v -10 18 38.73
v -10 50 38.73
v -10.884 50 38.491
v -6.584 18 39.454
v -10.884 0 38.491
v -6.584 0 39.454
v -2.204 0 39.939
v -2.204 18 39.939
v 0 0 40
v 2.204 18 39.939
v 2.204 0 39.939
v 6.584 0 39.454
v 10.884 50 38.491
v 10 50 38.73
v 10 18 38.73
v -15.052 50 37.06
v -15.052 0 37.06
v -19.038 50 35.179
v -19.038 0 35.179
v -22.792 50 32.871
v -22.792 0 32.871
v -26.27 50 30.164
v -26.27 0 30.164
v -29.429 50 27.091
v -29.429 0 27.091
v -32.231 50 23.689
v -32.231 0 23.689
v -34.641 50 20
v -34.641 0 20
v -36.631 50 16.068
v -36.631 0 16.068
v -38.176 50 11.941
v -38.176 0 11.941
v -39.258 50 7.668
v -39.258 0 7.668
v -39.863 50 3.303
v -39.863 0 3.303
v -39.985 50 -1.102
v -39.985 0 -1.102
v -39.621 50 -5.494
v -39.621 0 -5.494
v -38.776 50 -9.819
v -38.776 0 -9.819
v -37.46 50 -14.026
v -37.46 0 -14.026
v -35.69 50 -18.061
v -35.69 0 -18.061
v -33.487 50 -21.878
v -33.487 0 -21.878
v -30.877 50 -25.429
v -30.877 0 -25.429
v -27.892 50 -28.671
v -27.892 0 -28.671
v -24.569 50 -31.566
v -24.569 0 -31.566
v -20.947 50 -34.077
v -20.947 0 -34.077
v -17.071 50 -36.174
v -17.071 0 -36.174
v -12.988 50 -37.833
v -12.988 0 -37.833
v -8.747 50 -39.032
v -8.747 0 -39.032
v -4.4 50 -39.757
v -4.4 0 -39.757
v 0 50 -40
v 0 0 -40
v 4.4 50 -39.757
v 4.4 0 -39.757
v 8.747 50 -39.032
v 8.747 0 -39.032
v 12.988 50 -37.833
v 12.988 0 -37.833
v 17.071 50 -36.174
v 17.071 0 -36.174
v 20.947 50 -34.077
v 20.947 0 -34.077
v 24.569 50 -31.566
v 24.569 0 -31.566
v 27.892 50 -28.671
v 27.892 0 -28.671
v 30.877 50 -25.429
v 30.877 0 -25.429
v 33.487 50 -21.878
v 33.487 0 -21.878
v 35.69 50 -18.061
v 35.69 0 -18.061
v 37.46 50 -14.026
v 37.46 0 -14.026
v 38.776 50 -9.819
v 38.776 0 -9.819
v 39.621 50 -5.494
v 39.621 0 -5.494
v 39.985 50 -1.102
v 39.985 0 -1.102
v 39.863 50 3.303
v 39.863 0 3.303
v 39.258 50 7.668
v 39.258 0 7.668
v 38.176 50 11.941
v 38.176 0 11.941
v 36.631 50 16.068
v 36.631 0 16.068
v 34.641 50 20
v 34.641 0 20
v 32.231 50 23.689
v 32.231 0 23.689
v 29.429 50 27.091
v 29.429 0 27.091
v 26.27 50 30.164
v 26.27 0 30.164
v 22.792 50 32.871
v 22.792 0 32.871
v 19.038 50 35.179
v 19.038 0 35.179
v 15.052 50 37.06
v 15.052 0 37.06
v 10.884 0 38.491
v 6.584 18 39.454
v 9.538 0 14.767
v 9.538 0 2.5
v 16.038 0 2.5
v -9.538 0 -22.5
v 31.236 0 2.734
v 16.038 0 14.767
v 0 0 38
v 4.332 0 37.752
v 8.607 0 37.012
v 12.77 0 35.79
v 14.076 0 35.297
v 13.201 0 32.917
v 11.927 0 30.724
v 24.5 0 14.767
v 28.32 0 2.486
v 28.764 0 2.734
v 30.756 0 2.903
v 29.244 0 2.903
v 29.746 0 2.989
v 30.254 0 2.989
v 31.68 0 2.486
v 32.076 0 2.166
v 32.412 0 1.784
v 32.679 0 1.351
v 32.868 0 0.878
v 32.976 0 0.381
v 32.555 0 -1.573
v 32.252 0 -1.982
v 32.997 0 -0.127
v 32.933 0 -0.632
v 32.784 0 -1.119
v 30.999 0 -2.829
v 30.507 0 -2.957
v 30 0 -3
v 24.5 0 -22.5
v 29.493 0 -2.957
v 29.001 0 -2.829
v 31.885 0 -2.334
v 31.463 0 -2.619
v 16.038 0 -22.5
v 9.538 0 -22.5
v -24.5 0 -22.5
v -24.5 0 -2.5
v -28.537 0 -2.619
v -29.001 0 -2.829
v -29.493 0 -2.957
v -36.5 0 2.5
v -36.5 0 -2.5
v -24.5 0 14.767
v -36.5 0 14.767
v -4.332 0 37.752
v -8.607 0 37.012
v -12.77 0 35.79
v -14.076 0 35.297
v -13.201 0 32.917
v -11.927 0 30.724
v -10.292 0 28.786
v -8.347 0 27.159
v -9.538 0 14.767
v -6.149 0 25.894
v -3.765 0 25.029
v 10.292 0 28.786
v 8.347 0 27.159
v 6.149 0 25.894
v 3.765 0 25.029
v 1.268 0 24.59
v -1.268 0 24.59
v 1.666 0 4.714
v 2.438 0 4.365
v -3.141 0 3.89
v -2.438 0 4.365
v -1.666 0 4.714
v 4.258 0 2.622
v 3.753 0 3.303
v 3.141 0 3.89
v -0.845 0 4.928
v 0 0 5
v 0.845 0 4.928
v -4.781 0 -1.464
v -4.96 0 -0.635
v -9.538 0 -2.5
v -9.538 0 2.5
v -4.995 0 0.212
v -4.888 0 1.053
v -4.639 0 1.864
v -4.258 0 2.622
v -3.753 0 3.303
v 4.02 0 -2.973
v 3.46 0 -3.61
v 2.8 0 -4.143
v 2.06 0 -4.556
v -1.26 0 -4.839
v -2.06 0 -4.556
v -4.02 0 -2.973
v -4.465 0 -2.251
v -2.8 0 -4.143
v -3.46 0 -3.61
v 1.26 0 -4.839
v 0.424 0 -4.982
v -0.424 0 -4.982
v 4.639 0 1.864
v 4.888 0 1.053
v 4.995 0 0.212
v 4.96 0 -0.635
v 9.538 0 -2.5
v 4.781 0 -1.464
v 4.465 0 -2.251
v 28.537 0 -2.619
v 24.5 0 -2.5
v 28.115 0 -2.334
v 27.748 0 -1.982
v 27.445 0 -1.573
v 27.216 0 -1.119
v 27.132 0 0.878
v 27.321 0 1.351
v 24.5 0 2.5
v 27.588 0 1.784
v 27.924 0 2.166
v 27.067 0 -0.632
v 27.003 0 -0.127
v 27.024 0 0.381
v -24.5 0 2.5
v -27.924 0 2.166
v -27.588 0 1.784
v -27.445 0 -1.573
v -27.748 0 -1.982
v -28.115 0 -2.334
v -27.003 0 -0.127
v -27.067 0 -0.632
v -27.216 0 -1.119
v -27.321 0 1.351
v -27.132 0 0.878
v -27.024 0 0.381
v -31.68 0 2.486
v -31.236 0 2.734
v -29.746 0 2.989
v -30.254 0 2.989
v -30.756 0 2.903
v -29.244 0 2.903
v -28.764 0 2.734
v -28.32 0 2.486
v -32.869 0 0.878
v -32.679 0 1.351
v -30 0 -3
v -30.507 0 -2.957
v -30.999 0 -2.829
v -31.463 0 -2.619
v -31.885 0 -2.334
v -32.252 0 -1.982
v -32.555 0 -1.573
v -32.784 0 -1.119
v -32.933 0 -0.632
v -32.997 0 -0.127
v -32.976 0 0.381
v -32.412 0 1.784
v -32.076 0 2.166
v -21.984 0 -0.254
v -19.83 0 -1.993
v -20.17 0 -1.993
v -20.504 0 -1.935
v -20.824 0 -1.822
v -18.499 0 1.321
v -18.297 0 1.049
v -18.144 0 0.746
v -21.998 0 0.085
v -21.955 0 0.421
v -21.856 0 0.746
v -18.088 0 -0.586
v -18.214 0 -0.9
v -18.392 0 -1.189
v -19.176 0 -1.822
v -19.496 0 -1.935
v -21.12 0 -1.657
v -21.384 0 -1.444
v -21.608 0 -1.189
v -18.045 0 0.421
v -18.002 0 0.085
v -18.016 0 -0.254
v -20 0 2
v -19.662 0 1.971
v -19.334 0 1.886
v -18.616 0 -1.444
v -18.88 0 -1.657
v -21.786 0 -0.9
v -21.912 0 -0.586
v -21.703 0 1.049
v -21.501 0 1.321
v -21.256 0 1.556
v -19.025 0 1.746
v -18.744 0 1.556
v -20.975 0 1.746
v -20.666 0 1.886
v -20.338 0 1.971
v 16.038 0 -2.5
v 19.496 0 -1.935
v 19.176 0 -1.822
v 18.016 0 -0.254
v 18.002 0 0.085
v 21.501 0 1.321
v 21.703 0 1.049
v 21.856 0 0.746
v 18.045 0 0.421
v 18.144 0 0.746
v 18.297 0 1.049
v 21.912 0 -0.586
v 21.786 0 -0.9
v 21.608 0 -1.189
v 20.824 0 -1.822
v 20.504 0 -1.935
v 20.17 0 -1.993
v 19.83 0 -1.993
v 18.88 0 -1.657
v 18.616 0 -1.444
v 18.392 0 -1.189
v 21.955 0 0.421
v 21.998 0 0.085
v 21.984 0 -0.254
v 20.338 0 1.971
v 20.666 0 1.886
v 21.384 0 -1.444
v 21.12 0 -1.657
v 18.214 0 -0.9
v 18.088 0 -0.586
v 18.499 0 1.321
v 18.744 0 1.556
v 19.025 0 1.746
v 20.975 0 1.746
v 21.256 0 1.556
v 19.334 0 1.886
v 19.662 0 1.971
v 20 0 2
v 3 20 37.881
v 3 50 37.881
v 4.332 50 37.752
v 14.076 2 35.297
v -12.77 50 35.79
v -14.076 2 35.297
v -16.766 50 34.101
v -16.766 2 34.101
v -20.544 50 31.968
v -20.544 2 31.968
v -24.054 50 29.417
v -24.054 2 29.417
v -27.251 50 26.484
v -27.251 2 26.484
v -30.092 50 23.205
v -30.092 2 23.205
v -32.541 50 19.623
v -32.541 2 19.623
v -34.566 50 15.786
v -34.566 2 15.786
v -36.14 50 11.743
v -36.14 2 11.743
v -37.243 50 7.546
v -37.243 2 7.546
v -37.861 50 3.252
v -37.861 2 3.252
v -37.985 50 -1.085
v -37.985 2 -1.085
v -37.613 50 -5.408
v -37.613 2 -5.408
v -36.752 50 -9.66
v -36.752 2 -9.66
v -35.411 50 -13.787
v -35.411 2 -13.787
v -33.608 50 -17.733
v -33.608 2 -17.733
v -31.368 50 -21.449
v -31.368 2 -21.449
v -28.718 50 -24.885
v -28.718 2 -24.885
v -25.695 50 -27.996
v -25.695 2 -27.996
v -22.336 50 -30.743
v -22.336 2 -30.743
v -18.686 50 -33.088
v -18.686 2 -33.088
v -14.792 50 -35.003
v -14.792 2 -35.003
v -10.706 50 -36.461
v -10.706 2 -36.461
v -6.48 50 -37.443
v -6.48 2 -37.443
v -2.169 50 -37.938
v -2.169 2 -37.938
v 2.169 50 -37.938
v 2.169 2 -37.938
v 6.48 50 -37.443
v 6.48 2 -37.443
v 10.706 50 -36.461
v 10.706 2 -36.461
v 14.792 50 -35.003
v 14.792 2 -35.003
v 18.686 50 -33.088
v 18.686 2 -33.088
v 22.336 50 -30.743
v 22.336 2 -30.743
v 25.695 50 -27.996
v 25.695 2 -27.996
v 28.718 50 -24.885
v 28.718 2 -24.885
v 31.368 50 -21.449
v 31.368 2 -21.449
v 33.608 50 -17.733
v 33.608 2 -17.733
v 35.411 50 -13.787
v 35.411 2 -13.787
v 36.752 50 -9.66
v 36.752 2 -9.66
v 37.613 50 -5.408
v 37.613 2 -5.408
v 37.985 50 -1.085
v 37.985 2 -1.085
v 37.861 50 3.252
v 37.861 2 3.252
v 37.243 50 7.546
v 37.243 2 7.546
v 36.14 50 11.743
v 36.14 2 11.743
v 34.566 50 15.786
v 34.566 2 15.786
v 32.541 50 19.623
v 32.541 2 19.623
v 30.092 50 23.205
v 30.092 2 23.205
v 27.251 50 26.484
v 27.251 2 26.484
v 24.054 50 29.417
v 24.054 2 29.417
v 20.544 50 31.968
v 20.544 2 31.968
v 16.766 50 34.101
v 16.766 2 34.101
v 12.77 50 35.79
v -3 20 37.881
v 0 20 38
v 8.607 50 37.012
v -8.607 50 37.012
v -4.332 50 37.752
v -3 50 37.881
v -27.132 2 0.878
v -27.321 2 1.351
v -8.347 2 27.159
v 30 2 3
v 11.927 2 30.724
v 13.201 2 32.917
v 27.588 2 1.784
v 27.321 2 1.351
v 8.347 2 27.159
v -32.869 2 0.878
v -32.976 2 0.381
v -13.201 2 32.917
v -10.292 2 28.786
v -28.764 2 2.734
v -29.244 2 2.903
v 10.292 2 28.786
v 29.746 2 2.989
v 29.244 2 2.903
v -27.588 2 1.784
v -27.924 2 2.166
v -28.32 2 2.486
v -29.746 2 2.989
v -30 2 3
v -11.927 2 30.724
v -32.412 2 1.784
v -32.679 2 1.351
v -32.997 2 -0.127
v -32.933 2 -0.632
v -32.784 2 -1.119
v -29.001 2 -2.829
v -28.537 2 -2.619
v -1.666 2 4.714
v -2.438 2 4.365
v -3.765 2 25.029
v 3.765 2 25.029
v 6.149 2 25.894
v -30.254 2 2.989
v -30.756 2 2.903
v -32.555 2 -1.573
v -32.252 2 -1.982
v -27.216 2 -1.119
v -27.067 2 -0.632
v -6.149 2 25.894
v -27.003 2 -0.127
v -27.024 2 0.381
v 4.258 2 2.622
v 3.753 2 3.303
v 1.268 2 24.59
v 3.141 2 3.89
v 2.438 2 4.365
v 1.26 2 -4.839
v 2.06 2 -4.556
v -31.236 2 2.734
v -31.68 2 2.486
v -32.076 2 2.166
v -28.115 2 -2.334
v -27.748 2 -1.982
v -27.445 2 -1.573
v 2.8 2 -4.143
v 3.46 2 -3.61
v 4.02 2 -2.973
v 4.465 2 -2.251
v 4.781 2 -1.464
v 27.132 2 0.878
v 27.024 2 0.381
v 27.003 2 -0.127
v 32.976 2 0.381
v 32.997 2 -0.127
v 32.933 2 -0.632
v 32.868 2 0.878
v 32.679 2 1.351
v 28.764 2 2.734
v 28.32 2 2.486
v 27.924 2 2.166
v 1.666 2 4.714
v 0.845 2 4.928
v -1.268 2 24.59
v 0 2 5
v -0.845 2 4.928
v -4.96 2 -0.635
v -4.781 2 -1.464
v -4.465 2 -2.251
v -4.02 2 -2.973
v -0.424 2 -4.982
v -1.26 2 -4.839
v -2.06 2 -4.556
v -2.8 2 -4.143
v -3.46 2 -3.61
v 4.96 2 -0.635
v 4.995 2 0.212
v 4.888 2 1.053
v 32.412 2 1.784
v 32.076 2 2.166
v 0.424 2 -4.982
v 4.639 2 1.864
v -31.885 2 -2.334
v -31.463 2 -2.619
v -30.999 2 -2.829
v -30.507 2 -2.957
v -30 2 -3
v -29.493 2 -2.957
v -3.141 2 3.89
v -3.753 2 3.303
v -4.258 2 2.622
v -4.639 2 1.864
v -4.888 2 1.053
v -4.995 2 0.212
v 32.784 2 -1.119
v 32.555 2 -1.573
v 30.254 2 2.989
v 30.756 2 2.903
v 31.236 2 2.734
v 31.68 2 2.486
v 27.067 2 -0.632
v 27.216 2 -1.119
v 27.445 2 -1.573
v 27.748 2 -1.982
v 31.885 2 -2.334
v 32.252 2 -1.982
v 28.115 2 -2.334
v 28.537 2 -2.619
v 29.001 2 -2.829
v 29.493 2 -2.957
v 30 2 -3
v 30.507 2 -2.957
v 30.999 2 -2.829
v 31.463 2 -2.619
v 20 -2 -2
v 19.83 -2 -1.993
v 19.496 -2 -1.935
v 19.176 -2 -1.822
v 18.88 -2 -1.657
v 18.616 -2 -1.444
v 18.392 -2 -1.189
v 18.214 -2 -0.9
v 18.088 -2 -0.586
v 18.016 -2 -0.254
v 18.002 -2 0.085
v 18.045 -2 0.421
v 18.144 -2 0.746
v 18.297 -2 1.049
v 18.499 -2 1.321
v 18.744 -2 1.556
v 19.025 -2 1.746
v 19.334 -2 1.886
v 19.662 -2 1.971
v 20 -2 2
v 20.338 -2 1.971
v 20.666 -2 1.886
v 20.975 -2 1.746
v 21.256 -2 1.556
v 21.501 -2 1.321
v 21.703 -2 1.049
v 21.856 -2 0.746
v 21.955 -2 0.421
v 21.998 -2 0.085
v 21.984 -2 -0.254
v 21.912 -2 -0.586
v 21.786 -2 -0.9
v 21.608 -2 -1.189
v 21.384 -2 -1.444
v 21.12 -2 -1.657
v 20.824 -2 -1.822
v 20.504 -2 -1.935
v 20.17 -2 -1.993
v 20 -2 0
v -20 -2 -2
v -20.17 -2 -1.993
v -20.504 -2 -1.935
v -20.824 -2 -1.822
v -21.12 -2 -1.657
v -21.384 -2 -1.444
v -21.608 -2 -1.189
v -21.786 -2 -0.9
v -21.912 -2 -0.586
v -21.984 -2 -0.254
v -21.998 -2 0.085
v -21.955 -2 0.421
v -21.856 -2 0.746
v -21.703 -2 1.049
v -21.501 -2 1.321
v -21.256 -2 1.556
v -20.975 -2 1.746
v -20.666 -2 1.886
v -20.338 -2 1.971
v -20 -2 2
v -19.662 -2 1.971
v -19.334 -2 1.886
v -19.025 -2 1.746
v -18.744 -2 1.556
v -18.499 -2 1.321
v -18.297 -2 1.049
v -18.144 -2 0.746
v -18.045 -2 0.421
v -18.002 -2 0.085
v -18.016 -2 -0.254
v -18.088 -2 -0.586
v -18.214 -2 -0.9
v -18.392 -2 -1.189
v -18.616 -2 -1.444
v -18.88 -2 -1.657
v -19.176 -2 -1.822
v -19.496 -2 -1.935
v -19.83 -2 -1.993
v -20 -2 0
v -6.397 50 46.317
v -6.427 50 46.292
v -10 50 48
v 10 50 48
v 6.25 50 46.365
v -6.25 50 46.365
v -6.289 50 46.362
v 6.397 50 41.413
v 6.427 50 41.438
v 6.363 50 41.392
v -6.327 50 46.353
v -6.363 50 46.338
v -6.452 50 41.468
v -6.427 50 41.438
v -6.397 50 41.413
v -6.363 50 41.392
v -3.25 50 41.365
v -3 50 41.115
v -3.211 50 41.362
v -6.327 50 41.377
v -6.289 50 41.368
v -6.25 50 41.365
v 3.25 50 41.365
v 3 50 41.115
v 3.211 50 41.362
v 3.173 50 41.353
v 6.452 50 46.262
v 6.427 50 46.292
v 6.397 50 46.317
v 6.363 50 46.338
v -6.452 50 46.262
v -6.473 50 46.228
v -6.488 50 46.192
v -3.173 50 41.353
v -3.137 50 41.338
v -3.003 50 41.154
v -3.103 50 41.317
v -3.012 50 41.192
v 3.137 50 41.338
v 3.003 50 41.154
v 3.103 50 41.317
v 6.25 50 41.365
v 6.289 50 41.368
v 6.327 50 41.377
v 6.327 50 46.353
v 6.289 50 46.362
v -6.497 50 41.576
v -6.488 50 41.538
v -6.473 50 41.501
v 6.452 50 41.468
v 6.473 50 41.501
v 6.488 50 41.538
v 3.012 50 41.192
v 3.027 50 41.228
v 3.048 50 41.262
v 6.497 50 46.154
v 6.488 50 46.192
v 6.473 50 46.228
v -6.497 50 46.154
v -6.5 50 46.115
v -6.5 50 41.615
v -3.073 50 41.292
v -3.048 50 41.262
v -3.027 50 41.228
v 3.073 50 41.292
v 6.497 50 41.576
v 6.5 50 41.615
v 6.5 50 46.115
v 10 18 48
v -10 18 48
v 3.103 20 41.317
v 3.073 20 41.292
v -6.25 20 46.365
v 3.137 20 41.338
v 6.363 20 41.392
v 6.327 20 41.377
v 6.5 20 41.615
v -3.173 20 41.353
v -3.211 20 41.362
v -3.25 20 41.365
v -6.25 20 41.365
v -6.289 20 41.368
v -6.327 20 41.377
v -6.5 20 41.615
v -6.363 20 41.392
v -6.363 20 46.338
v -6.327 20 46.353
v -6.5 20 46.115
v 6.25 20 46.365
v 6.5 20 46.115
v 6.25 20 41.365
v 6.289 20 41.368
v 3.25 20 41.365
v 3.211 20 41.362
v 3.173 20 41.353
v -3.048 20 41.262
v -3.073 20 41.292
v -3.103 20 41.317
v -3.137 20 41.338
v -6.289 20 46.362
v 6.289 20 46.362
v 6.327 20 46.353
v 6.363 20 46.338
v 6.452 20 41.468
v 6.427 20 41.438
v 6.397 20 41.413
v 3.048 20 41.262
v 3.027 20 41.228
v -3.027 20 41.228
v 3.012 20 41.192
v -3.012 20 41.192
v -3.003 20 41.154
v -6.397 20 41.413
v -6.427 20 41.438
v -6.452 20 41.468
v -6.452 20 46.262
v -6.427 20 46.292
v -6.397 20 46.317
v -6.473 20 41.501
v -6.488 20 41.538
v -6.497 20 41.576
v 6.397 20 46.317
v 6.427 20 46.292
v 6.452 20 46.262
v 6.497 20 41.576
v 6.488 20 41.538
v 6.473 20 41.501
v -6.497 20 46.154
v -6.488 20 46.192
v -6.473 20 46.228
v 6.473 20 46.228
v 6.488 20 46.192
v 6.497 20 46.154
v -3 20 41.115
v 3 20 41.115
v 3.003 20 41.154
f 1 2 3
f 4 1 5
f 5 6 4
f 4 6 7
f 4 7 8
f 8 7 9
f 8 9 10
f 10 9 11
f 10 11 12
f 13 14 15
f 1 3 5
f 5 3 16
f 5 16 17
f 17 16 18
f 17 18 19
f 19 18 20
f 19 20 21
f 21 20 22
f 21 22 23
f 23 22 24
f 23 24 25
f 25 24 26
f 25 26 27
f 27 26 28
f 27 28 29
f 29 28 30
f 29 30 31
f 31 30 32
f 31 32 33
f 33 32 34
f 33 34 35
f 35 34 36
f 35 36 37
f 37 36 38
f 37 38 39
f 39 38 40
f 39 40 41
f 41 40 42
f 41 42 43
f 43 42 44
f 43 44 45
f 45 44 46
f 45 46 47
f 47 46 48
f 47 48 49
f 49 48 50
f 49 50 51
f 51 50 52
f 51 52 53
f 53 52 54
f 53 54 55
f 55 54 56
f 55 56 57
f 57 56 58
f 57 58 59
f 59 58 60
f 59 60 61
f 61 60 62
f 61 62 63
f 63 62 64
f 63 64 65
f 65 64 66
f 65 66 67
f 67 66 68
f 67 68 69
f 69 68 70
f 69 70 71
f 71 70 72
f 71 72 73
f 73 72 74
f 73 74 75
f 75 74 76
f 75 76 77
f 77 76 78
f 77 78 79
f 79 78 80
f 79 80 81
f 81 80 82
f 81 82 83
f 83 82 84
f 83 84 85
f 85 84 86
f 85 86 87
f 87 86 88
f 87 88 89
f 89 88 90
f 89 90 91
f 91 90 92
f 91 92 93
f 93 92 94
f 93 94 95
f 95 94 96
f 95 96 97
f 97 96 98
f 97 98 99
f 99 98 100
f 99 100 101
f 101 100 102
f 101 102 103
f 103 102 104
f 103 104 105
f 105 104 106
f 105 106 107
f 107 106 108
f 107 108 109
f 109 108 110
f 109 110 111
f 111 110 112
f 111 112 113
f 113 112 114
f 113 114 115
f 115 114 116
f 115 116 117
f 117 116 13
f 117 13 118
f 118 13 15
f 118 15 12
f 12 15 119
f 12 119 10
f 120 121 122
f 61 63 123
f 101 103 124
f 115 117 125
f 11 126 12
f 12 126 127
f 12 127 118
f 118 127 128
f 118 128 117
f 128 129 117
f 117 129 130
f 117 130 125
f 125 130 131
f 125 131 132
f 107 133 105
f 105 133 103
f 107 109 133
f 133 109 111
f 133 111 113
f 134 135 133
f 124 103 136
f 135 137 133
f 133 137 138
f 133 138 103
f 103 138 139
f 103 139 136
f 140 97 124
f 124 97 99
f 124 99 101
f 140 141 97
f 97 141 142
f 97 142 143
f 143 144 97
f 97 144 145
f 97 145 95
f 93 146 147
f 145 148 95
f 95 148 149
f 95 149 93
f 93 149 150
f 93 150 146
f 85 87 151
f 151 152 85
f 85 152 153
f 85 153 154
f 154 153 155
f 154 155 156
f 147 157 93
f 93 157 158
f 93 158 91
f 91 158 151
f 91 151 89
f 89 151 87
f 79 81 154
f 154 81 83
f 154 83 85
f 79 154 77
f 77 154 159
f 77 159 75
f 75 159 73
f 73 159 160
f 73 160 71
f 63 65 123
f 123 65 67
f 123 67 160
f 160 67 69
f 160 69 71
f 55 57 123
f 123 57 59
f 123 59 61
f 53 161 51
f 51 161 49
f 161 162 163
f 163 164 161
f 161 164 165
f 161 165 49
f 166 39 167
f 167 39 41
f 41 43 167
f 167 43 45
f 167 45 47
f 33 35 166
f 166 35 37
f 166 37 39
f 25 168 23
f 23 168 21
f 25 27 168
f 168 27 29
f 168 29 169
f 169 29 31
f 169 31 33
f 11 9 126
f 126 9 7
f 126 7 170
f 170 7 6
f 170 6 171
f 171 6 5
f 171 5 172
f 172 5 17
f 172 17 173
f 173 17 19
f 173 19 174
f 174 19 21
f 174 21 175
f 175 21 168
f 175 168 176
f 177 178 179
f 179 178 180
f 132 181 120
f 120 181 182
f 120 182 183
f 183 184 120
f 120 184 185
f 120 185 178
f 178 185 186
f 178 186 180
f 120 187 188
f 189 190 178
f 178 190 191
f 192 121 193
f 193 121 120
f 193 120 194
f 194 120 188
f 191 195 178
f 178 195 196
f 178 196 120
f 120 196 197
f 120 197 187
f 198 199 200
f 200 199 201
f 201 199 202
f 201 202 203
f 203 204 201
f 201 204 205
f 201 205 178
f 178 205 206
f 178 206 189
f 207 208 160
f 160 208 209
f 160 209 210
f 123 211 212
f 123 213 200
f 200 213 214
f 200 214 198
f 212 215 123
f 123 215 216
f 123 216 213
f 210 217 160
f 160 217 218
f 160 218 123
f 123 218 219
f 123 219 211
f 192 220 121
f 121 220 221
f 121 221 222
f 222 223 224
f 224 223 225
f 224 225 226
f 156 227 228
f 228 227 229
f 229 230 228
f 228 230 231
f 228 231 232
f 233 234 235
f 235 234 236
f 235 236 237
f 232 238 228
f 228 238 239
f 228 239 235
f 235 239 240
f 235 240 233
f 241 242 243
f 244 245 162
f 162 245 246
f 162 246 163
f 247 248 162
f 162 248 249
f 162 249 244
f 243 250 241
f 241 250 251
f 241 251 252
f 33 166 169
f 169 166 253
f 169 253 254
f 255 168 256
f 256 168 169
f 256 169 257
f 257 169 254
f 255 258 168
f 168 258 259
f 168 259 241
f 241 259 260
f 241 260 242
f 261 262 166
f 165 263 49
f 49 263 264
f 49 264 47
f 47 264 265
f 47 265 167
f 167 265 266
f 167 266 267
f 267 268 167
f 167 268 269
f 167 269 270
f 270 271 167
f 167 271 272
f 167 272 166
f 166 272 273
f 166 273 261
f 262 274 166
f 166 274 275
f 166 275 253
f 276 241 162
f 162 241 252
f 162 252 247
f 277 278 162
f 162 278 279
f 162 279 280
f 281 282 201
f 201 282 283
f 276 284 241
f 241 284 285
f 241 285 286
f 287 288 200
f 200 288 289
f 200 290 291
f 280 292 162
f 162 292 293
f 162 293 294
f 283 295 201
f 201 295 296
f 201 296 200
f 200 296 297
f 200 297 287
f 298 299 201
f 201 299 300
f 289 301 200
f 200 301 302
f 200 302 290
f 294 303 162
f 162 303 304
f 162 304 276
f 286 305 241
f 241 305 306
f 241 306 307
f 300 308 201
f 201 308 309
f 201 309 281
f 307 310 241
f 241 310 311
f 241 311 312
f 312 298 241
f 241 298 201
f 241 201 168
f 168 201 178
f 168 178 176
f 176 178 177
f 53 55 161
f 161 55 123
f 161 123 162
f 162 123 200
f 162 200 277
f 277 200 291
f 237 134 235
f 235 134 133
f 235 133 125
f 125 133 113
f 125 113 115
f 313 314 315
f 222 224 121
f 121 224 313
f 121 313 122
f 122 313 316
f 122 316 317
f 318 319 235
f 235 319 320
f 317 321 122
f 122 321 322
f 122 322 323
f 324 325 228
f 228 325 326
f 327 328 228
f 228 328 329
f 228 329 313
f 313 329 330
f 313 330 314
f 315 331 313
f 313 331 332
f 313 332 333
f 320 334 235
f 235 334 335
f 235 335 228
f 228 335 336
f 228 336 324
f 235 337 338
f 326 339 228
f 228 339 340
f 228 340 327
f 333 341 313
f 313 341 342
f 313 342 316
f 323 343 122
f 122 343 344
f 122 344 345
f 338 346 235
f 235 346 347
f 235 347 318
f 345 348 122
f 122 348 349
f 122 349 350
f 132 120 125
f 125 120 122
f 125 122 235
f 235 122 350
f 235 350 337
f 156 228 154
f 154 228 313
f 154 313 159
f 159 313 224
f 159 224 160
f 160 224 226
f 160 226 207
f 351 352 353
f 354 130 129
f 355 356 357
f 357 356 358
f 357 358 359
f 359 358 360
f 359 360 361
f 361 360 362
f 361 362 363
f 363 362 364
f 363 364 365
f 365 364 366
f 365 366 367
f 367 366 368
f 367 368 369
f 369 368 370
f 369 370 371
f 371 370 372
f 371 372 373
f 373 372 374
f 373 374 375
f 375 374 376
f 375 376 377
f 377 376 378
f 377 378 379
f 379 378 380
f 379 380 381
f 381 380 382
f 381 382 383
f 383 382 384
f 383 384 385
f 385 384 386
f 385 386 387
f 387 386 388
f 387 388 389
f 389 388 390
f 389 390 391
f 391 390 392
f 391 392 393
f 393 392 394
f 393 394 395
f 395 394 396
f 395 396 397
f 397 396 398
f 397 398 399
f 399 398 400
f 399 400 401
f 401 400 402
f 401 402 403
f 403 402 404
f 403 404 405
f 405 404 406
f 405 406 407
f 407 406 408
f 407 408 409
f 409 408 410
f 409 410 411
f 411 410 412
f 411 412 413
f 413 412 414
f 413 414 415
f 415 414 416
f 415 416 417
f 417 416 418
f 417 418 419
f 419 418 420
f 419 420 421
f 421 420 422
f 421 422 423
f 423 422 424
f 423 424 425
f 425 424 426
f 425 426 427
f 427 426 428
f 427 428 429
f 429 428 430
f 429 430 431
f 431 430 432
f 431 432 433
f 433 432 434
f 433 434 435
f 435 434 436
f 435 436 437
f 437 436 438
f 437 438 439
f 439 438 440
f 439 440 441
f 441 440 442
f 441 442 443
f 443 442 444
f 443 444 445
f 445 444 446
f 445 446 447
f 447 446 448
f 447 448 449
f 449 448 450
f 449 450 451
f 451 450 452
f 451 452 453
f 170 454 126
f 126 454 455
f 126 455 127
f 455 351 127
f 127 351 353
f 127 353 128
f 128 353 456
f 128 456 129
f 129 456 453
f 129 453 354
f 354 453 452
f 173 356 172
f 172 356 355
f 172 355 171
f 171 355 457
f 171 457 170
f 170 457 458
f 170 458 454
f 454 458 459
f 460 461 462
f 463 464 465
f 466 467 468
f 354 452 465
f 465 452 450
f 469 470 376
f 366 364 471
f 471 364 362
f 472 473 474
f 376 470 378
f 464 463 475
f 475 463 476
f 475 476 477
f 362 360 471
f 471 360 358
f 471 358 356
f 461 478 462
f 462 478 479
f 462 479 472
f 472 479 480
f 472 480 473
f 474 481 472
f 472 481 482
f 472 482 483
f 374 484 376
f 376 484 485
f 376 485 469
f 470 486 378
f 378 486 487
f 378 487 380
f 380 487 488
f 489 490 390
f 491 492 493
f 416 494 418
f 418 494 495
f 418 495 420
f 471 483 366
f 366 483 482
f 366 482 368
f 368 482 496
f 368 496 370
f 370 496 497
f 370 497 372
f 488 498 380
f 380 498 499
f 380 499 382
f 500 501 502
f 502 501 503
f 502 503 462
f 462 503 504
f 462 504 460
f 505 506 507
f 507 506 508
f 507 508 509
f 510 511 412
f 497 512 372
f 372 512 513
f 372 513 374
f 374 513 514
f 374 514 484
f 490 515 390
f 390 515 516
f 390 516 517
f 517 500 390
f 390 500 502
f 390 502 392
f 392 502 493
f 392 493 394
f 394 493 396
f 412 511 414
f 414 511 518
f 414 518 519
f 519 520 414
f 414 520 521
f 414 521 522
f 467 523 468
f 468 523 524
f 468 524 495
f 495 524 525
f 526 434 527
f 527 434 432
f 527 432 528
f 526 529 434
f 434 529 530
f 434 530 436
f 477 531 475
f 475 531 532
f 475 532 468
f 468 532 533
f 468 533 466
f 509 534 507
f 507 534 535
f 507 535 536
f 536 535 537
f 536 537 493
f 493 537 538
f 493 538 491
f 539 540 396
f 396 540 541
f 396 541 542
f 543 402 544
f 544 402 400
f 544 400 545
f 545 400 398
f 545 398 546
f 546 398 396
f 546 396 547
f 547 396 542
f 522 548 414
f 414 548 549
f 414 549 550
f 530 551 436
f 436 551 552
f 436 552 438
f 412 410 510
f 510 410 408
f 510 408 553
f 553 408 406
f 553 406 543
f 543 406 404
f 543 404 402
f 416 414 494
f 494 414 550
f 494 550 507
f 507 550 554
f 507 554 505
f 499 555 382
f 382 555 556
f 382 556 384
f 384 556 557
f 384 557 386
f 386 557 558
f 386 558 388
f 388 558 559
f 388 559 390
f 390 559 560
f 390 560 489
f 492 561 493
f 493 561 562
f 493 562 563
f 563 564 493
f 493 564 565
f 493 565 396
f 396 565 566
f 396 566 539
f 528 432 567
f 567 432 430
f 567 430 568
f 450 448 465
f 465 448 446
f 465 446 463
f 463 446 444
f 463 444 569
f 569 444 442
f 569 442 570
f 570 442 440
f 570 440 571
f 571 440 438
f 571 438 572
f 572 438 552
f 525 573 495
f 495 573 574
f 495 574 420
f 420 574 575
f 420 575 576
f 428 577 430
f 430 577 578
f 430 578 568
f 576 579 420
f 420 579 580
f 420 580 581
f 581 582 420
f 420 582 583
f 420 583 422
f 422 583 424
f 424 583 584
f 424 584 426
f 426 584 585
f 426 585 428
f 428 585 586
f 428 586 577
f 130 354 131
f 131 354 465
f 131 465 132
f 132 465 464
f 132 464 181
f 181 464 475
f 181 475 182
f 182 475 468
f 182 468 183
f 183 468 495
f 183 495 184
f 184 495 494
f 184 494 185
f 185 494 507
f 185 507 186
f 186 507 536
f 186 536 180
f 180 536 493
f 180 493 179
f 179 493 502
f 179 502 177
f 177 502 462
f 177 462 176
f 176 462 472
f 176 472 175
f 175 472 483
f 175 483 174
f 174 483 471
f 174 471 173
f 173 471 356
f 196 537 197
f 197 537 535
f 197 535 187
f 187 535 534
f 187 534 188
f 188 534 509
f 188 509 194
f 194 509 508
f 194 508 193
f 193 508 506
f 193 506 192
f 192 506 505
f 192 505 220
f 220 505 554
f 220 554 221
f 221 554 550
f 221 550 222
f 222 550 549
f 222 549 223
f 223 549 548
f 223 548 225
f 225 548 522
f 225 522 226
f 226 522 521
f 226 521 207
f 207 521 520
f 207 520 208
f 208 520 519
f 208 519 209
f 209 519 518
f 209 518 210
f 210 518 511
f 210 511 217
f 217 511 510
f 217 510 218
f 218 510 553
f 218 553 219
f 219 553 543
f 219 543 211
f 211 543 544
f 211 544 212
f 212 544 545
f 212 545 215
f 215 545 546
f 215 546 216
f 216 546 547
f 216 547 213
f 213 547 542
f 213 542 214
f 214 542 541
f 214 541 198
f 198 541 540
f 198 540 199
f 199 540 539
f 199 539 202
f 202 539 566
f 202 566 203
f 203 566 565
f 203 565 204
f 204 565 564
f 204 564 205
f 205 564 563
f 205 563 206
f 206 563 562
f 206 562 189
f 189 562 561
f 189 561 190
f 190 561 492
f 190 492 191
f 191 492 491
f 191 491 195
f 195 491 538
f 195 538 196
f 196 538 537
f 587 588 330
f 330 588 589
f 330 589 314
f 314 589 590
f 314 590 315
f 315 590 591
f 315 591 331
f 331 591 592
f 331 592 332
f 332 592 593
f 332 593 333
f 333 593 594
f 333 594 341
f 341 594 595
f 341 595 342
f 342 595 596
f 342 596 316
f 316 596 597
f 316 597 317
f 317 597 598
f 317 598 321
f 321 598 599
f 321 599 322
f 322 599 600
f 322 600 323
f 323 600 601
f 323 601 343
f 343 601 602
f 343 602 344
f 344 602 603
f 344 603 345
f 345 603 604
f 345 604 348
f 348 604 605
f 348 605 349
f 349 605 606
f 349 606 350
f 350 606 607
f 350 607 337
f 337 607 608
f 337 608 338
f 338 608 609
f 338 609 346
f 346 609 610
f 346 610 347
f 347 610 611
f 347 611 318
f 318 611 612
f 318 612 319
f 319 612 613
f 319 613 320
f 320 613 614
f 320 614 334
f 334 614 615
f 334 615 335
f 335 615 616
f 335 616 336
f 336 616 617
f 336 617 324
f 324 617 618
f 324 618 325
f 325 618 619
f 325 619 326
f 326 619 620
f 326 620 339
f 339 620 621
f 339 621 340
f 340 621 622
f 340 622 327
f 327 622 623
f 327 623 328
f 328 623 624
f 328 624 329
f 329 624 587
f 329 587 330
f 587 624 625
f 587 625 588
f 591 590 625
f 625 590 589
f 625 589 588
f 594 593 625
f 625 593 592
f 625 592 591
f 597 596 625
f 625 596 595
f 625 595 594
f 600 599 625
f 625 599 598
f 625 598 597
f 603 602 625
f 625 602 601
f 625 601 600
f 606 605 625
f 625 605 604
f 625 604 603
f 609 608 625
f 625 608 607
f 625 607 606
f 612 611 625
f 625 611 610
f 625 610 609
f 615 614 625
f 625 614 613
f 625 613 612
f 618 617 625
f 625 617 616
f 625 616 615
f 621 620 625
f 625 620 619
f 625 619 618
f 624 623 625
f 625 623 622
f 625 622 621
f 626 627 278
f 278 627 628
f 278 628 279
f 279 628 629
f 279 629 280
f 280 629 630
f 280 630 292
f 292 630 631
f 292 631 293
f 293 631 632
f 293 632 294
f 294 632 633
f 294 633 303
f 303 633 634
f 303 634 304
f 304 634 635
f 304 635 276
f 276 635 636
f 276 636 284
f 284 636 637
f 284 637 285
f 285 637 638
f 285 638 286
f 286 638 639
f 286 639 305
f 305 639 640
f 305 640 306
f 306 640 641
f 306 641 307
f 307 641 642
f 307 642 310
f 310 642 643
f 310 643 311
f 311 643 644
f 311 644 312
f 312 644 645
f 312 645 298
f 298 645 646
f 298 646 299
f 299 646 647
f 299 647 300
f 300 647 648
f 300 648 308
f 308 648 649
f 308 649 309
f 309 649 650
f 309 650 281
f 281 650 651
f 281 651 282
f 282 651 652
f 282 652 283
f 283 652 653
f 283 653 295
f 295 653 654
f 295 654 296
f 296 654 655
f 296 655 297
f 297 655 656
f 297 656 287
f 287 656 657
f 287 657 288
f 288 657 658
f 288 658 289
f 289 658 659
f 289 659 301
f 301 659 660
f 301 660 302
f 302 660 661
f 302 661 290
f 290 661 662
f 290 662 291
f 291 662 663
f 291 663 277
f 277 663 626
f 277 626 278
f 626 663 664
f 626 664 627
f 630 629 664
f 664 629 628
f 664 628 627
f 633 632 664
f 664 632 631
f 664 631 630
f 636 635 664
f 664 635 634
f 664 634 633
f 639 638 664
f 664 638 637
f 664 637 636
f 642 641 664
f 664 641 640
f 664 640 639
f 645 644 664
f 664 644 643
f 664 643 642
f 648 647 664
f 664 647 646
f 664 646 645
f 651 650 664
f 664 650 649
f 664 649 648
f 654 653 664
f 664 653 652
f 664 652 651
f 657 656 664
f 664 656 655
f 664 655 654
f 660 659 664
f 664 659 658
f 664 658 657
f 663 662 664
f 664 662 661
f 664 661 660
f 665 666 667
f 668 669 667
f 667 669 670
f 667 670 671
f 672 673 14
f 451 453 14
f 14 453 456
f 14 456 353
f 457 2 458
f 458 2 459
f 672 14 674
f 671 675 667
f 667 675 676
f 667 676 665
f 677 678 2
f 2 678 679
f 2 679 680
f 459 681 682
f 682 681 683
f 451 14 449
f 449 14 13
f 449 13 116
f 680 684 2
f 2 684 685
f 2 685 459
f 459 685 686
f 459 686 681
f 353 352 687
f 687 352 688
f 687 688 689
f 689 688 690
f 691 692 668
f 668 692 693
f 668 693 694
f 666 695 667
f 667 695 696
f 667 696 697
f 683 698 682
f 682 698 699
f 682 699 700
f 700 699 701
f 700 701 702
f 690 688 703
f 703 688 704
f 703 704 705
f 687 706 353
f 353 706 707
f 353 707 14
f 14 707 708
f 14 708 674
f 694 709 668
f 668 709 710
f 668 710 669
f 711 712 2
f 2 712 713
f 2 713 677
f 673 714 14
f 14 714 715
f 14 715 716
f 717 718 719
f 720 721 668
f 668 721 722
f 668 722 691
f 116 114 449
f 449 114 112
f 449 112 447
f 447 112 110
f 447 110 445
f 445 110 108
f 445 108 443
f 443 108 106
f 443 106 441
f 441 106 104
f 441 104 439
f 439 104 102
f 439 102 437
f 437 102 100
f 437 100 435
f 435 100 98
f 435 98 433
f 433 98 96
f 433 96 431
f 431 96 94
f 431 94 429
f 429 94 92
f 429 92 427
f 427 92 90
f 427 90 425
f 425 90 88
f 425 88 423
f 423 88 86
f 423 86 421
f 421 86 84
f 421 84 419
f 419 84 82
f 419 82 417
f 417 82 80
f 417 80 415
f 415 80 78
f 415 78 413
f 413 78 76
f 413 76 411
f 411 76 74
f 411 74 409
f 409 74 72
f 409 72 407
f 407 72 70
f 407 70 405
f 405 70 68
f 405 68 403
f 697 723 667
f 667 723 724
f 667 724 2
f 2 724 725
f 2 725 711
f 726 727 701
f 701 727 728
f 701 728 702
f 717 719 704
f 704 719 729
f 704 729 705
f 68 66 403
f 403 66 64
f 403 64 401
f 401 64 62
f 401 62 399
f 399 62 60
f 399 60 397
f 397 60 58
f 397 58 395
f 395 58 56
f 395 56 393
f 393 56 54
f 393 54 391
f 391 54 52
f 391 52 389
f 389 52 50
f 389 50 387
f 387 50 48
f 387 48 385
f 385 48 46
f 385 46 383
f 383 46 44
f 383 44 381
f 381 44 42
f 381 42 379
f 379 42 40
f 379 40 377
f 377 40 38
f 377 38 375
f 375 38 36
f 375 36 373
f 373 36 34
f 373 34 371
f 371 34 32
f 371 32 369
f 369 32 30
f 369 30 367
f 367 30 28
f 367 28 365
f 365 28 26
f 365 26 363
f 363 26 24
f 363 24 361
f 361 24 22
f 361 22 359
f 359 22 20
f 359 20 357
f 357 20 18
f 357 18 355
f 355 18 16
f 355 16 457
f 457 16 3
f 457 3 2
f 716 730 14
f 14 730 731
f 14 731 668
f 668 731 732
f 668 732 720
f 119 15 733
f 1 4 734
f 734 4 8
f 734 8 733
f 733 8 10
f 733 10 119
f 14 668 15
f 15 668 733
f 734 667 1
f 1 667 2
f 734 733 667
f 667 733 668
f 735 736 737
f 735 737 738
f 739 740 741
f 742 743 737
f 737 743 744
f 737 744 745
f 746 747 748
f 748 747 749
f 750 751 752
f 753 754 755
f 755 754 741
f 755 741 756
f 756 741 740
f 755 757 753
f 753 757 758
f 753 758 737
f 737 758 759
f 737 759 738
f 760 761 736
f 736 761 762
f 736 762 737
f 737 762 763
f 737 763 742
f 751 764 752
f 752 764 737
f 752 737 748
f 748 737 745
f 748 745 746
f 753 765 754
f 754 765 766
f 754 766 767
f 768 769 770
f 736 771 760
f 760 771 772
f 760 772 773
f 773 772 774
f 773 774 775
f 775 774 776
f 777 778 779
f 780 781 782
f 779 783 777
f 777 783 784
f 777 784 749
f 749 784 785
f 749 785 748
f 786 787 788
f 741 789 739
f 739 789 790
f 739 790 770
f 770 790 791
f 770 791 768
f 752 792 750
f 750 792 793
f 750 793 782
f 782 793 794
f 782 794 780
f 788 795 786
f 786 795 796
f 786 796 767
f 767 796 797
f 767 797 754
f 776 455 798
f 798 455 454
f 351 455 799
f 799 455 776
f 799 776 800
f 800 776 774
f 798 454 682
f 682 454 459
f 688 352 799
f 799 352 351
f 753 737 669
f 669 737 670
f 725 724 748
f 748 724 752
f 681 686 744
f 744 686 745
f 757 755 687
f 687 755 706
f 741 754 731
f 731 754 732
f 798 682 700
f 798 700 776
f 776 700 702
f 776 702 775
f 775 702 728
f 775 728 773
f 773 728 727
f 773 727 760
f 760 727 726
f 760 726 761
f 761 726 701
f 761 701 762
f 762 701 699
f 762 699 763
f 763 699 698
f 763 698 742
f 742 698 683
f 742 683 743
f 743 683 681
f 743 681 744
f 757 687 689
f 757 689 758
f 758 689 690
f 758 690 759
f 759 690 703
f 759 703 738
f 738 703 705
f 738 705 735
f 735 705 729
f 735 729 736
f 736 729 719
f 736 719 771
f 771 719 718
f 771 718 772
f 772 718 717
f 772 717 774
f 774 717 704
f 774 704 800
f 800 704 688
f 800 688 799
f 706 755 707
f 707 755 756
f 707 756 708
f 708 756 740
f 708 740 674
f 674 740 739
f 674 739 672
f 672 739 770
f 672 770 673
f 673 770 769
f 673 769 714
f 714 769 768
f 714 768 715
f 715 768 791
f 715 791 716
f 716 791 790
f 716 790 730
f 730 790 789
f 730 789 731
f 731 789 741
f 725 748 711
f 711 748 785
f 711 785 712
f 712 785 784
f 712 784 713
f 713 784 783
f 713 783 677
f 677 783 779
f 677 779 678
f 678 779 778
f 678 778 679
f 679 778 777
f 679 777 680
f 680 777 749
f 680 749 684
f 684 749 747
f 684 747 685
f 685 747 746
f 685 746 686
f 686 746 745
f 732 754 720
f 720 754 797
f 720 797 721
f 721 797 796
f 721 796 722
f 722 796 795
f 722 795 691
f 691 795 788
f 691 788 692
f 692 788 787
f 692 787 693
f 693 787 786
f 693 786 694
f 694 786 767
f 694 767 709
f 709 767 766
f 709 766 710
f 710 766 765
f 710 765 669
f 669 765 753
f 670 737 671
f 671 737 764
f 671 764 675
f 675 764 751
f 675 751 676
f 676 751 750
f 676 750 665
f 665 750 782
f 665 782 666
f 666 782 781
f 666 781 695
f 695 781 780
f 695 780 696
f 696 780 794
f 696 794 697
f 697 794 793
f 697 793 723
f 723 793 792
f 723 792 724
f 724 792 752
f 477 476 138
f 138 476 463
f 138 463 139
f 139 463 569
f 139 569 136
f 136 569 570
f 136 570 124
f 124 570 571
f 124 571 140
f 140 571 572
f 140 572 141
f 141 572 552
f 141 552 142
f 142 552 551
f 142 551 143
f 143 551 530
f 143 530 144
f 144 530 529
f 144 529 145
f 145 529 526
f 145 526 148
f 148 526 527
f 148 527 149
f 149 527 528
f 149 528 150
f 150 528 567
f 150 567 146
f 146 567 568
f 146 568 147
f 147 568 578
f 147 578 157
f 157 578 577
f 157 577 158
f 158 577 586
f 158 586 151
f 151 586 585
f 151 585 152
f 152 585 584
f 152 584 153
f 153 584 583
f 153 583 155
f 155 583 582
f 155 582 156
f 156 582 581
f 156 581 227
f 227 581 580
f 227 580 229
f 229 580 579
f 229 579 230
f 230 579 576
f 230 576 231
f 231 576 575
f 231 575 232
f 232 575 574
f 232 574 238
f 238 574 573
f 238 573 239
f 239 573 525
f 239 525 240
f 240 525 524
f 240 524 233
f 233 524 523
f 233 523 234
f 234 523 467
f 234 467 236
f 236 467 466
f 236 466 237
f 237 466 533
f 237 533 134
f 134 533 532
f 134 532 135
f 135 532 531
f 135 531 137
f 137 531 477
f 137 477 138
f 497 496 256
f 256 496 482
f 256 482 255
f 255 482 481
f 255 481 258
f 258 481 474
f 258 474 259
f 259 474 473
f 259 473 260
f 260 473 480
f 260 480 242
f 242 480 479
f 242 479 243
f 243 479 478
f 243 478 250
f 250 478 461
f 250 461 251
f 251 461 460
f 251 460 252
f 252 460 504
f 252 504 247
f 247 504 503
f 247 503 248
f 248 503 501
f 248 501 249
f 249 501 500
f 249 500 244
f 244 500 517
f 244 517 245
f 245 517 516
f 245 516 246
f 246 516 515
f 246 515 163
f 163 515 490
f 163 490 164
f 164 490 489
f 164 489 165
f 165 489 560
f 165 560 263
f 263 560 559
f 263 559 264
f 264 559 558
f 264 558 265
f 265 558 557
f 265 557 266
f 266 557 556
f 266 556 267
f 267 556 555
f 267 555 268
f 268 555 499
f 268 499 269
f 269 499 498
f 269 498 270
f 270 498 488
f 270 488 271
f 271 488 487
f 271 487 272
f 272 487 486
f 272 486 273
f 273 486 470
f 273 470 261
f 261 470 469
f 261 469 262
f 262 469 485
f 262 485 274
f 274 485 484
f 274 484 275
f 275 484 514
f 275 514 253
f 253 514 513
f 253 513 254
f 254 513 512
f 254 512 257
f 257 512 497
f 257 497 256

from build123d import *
from build123d.topology import SkipClean

# Parameters (mm, degrees)
SKETCH1_R           = 40
BOSS_EXTRUDE1_DEPTH = 40
SKETCH2_R           = 38
CUT_EXTRUDE1_DEPTH  = 38
CUT_EXTRUDE2_DEPTH  = 38
SKETCH4_R           = 5
CUT_EXTRUDE3_DEPTH  = 38
SKETCH6_R           = 2
BOSS_EXTRUDE2_DEPTH = 2
BOSS_EXTRUDE3_START = 10
SKETCH9_R           = 40
SKETCH9_R_2         = 38
BOSS_EXTRUDE3_DEPTH = 10
BOSS_EXTRUDE4_DEPTH = 32
CUT_EXTRUDE4_DEPTH  = 30
FILLET1_R           = 0.25
SKETCH13_R          = 3
CUT_EXTRUDE5_DEPTH  = 10


with BuildPart() as part:
    # Sketch1 → Boss-Extrude1 (new body)
    with BuildSketch(Plane(origin=(0, 0, 0), x_dir=(1, 0, 0), z_dir=(0, 1, 0))):
        with Locations(Location((0, 0, 0), (0, 0, 270))):
            Circle(SKETCH1_R)
    extrude(amount=BOSS_EXTRUDE1_DEPTH)

    # Sketch2 → Cut-Extrude1 (cut)
    with BuildSketch(Plane(origin=(0, 40, 0), x_dir=(1, 0, 0), z_dir=(0, 1, 0))):
        with Locations(Location((0, 0, 0), (0, 0, 270))):
            Circle(SKETCH2_R)
    extrude(amount=-CUT_EXTRUDE1_DEPTH, mode=Mode.SUBTRACT)

    # Sketch3 → Cut-Extrude2 (cut)
    with SkipClean():  # the faces are left unmerged after this step: merging them gives an invalid solid
        with BuildSketch(Plane(origin=(0, 2, 0), x_dir=(1, 0, 0), z_dir=(0, 1, 0))):
            with BuildLine():
                ThreePointArc((-14.076066703, -35.296803626), (0, -24.534862453), (14.076066703, -35.296803626))
                ThreePointArc((14.076066703, -35.296803626), (0, -38), (-14.076066703, -35.296803626))
            make_face()
        extrude(amount=-CUT_EXTRUDE2_DEPTH, mode=Mode.SUBTRACT)

    # Sketch4 → Cut-Extrude3 (cut)
    with SkipClean():  # the faces are left unmerged after this step: merging them gives an invalid solid
        with BuildSketch(Plane(origin=(0, 2, 0), x_dir=(1, 0, 0), z_dir=(0, 1, 0))):
            with Locations(Location((0, 0, 0), (0, 0, 270))):
                Circle(SKETCH4_R)
        extrude(amount=-CUT_EXTRUDE3_DEPTH, mode=Mode.SUBTRACT)

    # Sketch6 → Boss-Extrude2 (add)
    with SkipClean():  # the faces are left unmerged after this step: merging them gives an invalid solid
        with BuildSketch(Plane.XZ):
            with Locations(Location((-20, 0, 0), (0, 0, 90))):
                Circle(SKETCH6_R)
            with Locations(Location((20, 0, 0), (0, 0, 90))):
                Circle(SKETCH6_R)
        extrude(amount=BOSS_EXTRUDE2_DEPTH)

    # Sketch9 → Boss-Extrude3 (add)
    with SkipClean():  # the faces are left unmerged after this step: merging them gives an invalid solid
        with BuildSketch(Plane(origin=(0, 40, 0), x_dir=(1, 0, 0), z_dir=(0, 1, 0)).offset(BOSS_EXTRUDE3_START)):
            with Locations(Location((0, 0, 0), (0, 0, 270))):
                Circle(SKETCH9_R)
            with Locations(Location((0, 0, 0), (0, 0, 270))):
                Circle(SKETCH9_R_2, mode=Mode.SUBTRACT)
        extrude(amount=-BOSS_EXTRUDE3_DEPTH)

    # Sketch10 → Boss-Extrude4 (add)
    with SkipClean():  # the faces are left unmerged after this step: merging them gives an invalid solid
        with BuildSketch(Plane(origin=(0, 50, 0), x_dir=(1, 0, 0), z_dir=(0, 1, 0))):
            Polygon((0, -38), (10, -38), (10, -48), (-10, -48), (-10, -38), align=None)
        extrude(amount=-BOSS_EXTRUDE4_DEPTH)

    # Sketch11 → Cut-Extrude4 (cut)
    with SkipClean():  # the faces are left unmerged after this step: merging them gives an invalid solid
        with BuildSketch(Plane(origin=(0, 50, 0), x_dir=(1, 0, 0), z_dir=(0, 1, 0))):
            Polygon((-3, -36.864916731), (3, -36.864916731), (3, -41.364916731), (6.5, -41.364916731), (6.5, -46.364916731), (-6.5, -46.364916731), (-6.5, -41.364916731), (-3, -41.364916731), align=None)
        extrude(amount=-CUT_EXTRUDE4_DEPTH, mode=Mode.SUBTRACT)

    # Fillet1
    fillet1_edges = [part.edges().sort_by_distance(p)[0] for p in [
        (-3, 35, 41.364916731),
        (6.5, 35, 46.364916731),
        (-6.5, 35, 46.364916731),
        (-6.5, 35, 41.364916731),
        (3, 35, 41.364916731),
        (6.5, 35, 41.364916731),
    ]]
    fillet(fillet1_edges, radius=FILLET1_R)

    # Sketch13 → Cut-Extrude5 (cut)
    with BuildSketch(Plane.XZ):
        with Locations(Location((-30, 0, 0), (0, 0, 270))):
            Circle(SKETCH13_R)
        with Locations(Location((30, 0, 0), (0, 0, 270))):
            Circle(SKETCH13_R)
    extrude(amount=-CUT_EXTRUDE5_DEPTH, mode=Mode.SUBTRACT)


solid = part.part
